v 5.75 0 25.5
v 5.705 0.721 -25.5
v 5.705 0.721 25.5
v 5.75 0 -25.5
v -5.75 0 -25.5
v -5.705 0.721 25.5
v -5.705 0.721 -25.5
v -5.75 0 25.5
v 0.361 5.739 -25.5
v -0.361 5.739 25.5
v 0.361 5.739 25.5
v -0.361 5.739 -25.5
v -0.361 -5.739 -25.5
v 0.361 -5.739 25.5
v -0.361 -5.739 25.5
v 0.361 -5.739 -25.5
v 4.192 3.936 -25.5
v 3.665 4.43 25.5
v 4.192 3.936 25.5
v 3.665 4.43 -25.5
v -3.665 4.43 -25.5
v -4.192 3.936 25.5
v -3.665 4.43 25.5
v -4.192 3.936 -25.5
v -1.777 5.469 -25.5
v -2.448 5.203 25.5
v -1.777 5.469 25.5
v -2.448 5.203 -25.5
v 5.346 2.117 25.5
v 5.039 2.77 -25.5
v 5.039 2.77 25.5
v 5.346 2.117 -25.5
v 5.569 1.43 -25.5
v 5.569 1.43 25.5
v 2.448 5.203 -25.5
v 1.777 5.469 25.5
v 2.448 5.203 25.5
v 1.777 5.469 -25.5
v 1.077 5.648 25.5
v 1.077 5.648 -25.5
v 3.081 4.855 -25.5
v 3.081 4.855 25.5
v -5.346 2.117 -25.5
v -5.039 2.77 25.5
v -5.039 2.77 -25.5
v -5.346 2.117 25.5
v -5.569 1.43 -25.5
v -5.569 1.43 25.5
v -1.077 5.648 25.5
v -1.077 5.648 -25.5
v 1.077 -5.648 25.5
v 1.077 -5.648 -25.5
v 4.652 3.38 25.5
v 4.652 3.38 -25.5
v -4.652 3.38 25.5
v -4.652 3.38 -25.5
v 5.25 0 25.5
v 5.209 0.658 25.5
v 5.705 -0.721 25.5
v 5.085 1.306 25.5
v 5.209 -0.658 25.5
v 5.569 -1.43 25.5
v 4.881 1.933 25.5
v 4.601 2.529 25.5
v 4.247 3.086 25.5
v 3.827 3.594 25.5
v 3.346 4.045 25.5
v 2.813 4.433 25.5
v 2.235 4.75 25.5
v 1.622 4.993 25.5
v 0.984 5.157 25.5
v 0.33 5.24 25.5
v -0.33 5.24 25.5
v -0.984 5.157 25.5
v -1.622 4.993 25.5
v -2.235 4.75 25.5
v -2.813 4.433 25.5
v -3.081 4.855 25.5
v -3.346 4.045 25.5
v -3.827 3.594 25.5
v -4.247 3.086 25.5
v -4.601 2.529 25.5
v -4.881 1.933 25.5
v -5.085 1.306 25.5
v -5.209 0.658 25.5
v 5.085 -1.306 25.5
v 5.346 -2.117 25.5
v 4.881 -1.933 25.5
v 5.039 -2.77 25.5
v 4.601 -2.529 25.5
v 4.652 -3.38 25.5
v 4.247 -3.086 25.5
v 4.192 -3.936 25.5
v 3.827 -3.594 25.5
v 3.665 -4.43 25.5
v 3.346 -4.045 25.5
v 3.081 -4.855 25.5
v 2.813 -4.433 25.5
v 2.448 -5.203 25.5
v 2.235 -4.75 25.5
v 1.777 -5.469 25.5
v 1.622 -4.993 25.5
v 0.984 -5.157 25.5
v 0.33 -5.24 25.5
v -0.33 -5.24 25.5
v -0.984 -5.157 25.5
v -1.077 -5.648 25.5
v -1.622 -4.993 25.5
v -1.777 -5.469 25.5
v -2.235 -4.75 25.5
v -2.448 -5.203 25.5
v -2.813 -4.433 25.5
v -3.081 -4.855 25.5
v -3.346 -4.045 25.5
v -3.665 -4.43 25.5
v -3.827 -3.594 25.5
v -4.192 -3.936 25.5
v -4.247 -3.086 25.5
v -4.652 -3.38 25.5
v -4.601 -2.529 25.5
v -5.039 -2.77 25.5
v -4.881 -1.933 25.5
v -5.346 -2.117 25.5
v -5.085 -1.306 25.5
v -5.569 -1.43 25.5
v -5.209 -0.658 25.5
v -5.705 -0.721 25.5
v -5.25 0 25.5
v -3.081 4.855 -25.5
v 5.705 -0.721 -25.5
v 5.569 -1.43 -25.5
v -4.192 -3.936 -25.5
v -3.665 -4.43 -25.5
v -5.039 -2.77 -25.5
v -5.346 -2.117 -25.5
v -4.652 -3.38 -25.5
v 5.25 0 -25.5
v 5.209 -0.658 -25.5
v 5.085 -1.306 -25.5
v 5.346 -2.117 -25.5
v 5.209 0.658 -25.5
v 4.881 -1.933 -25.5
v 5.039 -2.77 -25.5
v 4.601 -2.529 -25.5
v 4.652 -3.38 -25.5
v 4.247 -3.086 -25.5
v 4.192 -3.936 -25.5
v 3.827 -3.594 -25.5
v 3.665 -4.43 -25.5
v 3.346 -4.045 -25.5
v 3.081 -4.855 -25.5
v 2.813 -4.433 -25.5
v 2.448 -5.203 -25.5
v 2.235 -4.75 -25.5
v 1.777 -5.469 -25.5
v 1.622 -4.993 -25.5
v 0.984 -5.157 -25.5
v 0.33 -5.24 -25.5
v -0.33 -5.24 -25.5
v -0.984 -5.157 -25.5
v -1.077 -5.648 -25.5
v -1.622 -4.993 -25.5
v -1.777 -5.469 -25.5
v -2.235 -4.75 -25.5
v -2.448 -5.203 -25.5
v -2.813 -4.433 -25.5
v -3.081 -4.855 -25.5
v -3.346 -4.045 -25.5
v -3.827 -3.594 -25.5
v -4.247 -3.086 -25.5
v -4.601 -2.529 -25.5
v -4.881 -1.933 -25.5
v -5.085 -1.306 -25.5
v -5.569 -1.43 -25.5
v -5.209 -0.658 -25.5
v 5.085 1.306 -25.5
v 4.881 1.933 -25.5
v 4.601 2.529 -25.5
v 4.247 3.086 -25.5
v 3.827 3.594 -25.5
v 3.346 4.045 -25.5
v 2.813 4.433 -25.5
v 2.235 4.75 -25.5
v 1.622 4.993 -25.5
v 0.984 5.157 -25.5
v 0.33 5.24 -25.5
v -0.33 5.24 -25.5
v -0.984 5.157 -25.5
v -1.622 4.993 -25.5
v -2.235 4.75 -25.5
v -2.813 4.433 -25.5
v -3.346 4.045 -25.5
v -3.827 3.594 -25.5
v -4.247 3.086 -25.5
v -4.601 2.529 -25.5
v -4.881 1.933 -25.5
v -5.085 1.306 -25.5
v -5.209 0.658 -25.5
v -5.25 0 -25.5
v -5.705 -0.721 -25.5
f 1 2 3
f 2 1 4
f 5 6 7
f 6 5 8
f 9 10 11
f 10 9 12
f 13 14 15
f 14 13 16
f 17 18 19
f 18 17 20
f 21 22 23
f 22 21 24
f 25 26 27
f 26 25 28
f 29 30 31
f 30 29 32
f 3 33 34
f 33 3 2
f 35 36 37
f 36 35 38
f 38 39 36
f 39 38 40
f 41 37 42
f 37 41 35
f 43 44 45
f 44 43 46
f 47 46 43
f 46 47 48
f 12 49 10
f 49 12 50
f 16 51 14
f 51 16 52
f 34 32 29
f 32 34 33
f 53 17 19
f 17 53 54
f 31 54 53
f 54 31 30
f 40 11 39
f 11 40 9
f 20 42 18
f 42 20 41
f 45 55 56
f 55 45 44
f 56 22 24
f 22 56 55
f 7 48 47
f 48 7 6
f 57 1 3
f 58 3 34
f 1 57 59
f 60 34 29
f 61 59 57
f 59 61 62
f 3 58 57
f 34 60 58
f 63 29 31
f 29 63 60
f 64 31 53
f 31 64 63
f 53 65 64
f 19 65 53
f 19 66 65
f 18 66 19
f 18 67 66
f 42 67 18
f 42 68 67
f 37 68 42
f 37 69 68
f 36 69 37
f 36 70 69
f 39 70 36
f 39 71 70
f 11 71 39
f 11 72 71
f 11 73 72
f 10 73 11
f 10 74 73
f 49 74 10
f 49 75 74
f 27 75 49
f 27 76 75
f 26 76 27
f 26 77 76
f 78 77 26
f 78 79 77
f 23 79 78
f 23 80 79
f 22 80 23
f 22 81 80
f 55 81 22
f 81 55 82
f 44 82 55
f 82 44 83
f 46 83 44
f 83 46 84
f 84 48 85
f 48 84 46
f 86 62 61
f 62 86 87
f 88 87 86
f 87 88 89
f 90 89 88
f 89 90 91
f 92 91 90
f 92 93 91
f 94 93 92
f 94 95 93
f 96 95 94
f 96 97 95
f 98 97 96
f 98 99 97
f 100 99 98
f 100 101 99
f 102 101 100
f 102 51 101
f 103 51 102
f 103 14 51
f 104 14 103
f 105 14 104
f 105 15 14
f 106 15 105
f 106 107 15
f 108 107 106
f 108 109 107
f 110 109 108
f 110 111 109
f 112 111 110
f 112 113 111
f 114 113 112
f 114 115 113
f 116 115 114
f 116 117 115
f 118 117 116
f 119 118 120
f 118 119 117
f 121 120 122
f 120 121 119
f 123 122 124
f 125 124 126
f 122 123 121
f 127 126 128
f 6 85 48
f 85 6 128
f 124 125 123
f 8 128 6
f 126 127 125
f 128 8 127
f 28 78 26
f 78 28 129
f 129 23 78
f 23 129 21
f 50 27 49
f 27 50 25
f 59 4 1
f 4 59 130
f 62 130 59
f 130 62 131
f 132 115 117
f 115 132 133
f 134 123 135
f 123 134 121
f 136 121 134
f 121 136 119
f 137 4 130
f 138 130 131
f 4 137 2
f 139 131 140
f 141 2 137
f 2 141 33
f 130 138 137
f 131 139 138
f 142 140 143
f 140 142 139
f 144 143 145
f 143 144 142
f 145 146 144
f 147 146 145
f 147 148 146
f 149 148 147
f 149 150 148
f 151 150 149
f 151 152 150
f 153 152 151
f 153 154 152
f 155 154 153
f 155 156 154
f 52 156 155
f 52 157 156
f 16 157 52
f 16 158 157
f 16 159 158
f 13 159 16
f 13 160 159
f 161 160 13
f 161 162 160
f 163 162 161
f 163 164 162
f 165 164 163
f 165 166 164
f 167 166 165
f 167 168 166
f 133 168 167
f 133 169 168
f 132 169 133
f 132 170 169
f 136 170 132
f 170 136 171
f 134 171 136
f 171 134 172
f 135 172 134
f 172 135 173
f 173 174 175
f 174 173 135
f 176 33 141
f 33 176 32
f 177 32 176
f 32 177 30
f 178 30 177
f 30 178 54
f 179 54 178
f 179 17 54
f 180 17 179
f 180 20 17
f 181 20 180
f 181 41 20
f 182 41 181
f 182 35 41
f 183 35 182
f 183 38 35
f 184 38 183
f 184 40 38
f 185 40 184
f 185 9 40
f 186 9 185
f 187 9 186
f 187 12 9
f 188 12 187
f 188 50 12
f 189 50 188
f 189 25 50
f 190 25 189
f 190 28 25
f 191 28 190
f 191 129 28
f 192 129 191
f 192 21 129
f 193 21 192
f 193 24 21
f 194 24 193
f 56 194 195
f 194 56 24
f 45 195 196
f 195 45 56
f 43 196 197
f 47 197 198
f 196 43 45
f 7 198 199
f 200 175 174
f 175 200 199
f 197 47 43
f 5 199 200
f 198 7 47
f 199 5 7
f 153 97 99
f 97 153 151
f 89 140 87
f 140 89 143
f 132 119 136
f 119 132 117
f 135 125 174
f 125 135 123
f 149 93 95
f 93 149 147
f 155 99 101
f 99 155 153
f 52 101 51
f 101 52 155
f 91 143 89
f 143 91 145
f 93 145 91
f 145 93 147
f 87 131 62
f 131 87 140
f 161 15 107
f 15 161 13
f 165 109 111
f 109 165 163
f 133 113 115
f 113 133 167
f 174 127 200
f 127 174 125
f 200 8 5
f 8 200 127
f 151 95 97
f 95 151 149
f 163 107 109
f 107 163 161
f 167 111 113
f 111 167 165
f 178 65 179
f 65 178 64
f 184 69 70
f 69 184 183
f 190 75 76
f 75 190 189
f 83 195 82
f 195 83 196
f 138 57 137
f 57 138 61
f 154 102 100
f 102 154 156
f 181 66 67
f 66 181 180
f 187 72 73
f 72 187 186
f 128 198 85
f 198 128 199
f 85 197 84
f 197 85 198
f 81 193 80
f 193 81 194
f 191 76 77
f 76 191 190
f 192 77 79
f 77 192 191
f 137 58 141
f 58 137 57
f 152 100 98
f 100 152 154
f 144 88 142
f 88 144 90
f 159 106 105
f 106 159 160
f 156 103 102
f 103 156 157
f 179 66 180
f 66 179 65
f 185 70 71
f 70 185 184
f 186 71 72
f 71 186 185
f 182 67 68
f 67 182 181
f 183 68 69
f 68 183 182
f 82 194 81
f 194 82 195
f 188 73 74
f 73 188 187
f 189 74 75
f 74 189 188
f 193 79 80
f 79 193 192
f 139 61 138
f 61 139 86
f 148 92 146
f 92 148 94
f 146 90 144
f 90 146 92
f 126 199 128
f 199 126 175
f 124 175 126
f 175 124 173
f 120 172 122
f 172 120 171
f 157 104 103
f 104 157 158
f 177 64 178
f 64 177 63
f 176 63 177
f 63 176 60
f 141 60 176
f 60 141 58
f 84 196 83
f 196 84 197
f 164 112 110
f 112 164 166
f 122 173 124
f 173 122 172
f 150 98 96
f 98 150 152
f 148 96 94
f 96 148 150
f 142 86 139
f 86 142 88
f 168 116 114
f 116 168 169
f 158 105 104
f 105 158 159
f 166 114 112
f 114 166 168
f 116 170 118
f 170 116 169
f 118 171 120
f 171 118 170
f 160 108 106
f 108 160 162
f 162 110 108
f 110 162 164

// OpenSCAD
$fn = 50;


difference() {
	union() {
		translate(v = [0, 0, -25.5000000000]) {
			cylinder(h = 51, r = 5.7500000000);
		}
	}
	union() {
		translate(v = [0, 0, -100.0000000000]) {
			cylinder(h = 200, r = 5.2500000000);
		}
	}
}
